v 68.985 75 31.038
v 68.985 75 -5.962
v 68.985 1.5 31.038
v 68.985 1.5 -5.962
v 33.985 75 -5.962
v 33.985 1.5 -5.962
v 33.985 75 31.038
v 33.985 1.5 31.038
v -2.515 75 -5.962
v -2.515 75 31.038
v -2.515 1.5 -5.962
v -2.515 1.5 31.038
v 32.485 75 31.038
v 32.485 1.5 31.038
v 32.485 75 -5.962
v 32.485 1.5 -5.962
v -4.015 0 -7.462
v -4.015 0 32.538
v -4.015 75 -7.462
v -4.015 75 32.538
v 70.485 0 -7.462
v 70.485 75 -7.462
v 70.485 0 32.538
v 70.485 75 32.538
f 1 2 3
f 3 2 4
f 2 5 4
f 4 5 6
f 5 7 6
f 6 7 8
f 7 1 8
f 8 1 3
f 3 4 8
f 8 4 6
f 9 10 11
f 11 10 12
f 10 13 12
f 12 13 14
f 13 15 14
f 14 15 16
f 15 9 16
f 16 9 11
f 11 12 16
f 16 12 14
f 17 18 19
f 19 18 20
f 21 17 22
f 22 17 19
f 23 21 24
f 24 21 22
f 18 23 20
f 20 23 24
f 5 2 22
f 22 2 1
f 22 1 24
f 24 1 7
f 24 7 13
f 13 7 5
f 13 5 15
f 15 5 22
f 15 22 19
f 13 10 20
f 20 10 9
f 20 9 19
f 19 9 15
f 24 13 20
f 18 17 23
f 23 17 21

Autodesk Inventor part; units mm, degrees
ref_plane "YZ Plane" through (0, 0, 0) normal (1, 0, 0) x (0, 1, 0)
ref_plane "XZ Plane" through (0, 0, 0) normal (0, 1, 0) x (-1, 0, 0)
ref_plane "XY Plane" through (0, 0, 0) normal (0, 0, 1) x (1, 0, 0)
sketch "Sketch1" plane through (0, 0, 0) normal (0, 1, 0) x (-1, 0, 0)
  line L0 (4.0152, 32.5375) -> (-70.4848, 32.5375)
  line L1 (-70.4848, 32.5375) -> (-70.4848, -7.4625)
  line L2 (-70.4848, -7.4625) -> (4.0152, -7.4625)
  line L3 (4.0152, -7.4625) -> (4.0152, 32.5375)
  point P0 (0, 0)
  dimension "d0" = 74.5
  dimension "d1" = 40
extrude "Extrusion1" add sketch "Sketch1" along normal blind 75
sketch "Sketch3" plane through (0, 75, 0) normal (0, 1, 0) x (1, 0, 0)
  line L0 (-2.5152, 5.9625) -> (32.4848, 5.9625)
  line L1 (32.4848, 5.9625) -> (32.4848, -31.0375)
  line L2 (32.4848, -31.0375) -> (-2.5152, -31.0375)
  line L3 (-2.5152, -31.0375) -> (-2.5152, 5.9625)
  line L4 (33.9848, 5.9625) -> (68.9848, 5.9625)
  line L5 (68.9848, 5.9625) -> (68.9848, -31.0375)
  line L6 (68.9848, -31.0375) -> (33.9848, -31.0375)
  line L7 (33.9848, -31.0375) -> (33.9848, 5.9625)
  line L8 (70.4848, 7.4625) -> (-4.0152, 7.4625) projected
  line L9 (70.4848, -32.5375) -> (70.4848, 7.4625) projected
  line L10 (-4.0152, -32.5375) -> (70.4848, -32.5375) projected
  line L11 (-4.0152, 7.4625) -> (-4.0152, -32.5375) projected
  point P0 (0, 0)
  dimension "d10" = 1.5
  dimension "d11" = 1.5
  dimension "d12" = 1.5
  dimension "d13" = 1.5
  dimension "d14" = 1.5
  dimension "d15" = 35
  dimension "d16" = 35
extrude "Extrusion3" cut sketch "Sketch3" against normal blind 73.5 contours L4 L5 L6 L7
extrude "Extrusion4" cut sketch "Sketch3" against normal blind 73.5 contours L0 L1 L2 L3
equation "\"d11\" = d10"
equation "\"d12\" = d10"
equation "\"d14\" = d10"
equation "\"d15\" = d16"
properties part number "_3DPrint"
